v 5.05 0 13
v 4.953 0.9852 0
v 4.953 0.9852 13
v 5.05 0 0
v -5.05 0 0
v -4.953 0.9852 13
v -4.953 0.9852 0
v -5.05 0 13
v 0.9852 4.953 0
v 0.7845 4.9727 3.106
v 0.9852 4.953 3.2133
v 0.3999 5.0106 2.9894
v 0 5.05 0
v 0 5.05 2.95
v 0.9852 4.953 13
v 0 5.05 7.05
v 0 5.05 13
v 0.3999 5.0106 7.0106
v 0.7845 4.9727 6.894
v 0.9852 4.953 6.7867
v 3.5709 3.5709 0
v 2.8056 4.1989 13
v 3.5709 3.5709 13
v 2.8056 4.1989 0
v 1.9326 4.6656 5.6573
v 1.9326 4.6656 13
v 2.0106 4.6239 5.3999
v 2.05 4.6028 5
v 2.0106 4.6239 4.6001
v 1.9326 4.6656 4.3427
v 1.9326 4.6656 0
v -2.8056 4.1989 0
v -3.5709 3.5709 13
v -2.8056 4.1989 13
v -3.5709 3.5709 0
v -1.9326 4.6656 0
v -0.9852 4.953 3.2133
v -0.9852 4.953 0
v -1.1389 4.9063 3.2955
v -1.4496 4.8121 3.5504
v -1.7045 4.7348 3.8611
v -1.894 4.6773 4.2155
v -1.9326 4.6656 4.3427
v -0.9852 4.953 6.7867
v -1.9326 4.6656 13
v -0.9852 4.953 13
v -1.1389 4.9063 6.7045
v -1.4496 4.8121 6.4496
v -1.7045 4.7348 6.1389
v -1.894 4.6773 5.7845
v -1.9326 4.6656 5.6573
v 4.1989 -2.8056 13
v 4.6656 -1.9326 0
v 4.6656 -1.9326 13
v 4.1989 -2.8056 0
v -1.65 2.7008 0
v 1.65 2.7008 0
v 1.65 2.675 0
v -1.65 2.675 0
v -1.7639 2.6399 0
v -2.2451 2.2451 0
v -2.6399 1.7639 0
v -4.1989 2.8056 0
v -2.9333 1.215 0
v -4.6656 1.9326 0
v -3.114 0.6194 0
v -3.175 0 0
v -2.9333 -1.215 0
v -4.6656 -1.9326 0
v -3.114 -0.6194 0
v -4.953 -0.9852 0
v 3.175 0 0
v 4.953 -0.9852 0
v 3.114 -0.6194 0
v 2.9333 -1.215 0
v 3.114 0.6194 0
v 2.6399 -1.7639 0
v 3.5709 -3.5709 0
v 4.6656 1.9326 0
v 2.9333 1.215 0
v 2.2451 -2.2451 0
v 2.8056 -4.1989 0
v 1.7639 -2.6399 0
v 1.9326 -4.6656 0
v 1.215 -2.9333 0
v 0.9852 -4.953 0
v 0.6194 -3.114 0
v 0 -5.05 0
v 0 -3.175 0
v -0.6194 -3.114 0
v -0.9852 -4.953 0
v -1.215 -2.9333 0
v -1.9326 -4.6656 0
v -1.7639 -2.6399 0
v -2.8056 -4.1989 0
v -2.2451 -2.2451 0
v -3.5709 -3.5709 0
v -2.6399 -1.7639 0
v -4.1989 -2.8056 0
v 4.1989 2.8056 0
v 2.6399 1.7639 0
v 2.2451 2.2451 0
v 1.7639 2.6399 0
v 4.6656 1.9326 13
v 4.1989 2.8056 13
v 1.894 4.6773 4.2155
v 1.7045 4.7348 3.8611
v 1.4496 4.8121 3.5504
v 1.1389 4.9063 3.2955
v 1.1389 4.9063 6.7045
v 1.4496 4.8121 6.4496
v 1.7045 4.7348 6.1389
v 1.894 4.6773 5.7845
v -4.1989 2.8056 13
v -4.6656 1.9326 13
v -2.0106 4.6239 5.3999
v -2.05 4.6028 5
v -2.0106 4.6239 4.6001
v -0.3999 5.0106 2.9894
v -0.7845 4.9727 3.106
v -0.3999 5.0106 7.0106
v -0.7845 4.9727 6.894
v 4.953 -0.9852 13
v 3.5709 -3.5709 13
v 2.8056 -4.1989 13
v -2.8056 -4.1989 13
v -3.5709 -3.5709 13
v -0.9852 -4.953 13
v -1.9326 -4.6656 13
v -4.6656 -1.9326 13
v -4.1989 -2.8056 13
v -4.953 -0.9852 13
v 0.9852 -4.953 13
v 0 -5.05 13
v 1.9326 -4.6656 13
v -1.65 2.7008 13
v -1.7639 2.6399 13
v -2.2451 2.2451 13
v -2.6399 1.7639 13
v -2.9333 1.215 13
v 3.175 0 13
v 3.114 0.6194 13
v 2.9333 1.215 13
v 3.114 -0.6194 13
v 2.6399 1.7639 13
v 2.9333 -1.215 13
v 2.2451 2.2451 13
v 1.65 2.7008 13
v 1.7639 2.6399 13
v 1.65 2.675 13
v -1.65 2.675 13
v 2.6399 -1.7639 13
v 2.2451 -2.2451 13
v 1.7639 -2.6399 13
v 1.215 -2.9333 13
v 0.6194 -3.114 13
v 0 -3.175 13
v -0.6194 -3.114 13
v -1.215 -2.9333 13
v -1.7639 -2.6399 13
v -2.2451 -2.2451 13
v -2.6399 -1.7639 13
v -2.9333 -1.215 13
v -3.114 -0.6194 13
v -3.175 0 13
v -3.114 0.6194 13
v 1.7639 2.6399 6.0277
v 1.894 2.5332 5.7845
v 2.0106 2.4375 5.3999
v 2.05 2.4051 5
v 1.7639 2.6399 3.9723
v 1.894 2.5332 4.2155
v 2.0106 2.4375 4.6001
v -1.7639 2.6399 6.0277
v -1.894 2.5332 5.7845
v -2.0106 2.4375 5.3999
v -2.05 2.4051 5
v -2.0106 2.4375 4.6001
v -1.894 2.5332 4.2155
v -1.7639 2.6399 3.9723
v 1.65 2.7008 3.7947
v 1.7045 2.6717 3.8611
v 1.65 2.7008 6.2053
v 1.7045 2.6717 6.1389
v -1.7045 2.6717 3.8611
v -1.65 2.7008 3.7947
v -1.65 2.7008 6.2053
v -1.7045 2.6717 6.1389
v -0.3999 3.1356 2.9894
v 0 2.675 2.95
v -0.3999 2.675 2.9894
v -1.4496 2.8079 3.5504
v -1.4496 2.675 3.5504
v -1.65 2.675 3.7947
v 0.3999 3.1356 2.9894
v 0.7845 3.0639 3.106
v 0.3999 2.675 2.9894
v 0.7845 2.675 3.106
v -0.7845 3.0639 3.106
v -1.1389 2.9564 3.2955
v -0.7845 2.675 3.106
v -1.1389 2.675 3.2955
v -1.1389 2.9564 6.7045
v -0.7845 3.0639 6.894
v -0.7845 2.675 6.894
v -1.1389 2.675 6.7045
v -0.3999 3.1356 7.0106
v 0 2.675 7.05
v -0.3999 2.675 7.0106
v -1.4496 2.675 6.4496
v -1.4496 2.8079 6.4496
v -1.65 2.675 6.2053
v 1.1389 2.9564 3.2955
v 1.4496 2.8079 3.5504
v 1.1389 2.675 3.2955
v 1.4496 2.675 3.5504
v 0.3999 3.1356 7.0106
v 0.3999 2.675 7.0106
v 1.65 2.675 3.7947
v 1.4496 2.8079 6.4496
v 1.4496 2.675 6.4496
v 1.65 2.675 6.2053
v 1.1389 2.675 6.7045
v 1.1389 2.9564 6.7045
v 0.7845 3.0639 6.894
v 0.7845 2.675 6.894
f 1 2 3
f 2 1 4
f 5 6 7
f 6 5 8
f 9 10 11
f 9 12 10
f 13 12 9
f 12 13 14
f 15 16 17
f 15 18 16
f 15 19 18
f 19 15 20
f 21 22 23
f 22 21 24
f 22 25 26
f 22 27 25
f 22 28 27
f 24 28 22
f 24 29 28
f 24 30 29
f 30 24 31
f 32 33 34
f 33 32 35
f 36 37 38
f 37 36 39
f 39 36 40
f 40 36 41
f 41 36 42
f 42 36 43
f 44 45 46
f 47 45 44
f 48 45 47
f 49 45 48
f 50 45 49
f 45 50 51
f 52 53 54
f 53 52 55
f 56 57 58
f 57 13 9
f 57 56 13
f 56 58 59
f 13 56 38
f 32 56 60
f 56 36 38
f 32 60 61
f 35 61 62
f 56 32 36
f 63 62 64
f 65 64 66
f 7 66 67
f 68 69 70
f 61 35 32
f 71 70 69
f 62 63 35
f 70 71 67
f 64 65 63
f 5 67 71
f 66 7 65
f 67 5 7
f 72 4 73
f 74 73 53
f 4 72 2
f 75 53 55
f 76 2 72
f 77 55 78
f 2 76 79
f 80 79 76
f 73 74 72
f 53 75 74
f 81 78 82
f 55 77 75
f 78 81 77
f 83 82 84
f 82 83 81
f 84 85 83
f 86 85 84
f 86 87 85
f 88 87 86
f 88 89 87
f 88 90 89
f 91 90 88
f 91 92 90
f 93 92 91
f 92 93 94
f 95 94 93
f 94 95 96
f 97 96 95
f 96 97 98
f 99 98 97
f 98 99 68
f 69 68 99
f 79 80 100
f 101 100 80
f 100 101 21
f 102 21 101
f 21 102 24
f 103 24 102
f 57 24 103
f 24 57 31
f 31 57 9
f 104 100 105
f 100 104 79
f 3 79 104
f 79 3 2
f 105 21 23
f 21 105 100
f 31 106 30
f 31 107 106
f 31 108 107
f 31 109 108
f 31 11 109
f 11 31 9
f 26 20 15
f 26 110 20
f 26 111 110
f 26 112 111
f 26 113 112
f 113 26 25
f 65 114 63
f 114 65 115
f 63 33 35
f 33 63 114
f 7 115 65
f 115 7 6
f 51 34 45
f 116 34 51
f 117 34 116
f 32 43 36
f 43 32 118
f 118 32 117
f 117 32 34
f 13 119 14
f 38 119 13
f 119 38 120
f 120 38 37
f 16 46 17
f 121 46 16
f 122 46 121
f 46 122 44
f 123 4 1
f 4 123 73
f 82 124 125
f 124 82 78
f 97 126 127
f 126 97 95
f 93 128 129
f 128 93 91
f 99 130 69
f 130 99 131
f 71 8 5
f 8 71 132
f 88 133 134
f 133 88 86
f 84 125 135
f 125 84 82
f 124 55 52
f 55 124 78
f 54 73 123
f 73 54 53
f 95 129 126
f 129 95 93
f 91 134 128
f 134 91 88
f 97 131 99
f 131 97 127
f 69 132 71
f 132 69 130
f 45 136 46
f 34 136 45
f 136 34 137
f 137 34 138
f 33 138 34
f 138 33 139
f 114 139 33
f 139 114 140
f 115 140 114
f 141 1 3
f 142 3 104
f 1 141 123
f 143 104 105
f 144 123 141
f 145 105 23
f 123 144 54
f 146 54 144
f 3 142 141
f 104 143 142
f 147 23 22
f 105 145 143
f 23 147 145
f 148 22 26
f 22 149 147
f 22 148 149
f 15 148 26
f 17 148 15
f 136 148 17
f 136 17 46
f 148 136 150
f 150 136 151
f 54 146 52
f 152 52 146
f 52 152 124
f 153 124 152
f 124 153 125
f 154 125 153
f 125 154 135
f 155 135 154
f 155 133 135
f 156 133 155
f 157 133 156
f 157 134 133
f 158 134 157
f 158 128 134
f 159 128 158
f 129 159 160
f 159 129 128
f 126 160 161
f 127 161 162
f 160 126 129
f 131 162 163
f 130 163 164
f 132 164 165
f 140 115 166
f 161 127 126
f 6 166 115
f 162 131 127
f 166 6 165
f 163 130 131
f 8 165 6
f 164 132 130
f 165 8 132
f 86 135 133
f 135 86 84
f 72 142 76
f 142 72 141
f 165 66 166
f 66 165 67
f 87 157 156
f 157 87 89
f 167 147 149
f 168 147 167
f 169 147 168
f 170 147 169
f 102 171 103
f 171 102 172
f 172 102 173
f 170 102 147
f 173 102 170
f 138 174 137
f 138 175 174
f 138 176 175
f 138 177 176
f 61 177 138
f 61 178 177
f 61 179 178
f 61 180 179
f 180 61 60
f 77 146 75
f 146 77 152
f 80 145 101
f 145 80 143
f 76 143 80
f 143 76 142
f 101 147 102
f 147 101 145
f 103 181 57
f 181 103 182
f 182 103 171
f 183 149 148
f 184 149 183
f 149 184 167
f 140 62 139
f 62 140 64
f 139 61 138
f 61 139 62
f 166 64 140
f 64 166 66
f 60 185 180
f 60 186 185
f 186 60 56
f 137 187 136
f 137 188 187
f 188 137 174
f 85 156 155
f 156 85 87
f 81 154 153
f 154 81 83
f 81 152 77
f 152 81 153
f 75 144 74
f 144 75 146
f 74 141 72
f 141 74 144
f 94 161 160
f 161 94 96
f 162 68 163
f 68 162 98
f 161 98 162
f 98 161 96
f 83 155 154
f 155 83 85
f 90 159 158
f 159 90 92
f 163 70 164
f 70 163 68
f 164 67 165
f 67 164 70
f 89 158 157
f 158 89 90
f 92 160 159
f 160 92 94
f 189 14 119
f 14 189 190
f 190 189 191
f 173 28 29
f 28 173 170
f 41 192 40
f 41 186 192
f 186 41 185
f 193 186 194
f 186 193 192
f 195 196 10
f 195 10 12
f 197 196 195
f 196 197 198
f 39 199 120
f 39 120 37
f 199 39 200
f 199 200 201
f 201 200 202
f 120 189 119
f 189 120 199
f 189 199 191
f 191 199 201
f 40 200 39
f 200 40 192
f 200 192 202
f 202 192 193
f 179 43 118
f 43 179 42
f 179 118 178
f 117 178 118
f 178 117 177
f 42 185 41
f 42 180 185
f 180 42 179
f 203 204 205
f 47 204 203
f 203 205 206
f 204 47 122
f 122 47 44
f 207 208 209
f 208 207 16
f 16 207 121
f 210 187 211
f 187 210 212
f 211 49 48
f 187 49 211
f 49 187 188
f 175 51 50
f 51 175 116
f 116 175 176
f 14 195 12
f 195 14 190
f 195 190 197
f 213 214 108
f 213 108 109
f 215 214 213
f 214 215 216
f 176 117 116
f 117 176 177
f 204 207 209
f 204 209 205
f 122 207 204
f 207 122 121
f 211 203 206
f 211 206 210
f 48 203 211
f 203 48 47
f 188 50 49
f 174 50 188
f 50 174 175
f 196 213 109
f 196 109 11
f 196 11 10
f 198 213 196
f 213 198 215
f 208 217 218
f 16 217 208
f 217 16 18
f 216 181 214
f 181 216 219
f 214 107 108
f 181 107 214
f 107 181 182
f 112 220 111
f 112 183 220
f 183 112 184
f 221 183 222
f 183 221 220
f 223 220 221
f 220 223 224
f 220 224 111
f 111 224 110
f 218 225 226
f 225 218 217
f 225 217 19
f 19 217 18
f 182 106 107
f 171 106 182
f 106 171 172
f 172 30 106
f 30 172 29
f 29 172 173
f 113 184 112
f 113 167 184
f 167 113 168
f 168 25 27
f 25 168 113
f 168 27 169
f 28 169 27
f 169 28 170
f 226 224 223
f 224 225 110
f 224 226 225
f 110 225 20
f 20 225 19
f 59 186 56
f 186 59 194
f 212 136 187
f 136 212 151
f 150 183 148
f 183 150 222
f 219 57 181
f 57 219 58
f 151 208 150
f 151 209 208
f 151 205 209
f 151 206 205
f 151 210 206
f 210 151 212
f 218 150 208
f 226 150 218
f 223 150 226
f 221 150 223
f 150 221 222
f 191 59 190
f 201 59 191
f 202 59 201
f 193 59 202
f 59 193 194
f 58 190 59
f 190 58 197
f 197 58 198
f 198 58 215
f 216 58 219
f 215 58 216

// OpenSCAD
/*
    Proxymow Mower - Flange Adaptor
    Adapts a 6mm D shaft to 10mm Flange Hole with anti-vibration grub screw hole
    Print in PETG
*/
shaft_length = 13;
outer_dia = 10.1;
inner_dia = 6.35;
key_width = 3.3;
key_length = 2.0;
key_offset = 0.5;
grub_hole_dia = 4.1;
grub_hole_offset = 5.0;

module grub() {
    //grub hole
    translate([0, 0, grub_hole_offset]) rotate([0,90,90]) cylinder(shaft_length, d=grub_hole_dia, $fn=32);
}

module adapter() {
    

    difference() {
    
        //10mm tight fit shaft
        cylinder(shaft_length, d=outer_dia, $fn=32);//

        //enlarged hole > 6.2 in file
        translate([0,0,-1]) cylinder(shaft_length + 2, d=inner_dia, $fn=32);//fmly 6.4

        grub();
    }
    difference() {

        //key - 0.5mm from edge, 6.4/2 - 0.5 = 2.7
        translate([0,inner_dia/2 + key_length/2 - key_offset,shaft_length/2]) cube([key_width, key_length, shaft_length], center=true);

        //grub hole in key
        grub();
    }
}

adapter();
